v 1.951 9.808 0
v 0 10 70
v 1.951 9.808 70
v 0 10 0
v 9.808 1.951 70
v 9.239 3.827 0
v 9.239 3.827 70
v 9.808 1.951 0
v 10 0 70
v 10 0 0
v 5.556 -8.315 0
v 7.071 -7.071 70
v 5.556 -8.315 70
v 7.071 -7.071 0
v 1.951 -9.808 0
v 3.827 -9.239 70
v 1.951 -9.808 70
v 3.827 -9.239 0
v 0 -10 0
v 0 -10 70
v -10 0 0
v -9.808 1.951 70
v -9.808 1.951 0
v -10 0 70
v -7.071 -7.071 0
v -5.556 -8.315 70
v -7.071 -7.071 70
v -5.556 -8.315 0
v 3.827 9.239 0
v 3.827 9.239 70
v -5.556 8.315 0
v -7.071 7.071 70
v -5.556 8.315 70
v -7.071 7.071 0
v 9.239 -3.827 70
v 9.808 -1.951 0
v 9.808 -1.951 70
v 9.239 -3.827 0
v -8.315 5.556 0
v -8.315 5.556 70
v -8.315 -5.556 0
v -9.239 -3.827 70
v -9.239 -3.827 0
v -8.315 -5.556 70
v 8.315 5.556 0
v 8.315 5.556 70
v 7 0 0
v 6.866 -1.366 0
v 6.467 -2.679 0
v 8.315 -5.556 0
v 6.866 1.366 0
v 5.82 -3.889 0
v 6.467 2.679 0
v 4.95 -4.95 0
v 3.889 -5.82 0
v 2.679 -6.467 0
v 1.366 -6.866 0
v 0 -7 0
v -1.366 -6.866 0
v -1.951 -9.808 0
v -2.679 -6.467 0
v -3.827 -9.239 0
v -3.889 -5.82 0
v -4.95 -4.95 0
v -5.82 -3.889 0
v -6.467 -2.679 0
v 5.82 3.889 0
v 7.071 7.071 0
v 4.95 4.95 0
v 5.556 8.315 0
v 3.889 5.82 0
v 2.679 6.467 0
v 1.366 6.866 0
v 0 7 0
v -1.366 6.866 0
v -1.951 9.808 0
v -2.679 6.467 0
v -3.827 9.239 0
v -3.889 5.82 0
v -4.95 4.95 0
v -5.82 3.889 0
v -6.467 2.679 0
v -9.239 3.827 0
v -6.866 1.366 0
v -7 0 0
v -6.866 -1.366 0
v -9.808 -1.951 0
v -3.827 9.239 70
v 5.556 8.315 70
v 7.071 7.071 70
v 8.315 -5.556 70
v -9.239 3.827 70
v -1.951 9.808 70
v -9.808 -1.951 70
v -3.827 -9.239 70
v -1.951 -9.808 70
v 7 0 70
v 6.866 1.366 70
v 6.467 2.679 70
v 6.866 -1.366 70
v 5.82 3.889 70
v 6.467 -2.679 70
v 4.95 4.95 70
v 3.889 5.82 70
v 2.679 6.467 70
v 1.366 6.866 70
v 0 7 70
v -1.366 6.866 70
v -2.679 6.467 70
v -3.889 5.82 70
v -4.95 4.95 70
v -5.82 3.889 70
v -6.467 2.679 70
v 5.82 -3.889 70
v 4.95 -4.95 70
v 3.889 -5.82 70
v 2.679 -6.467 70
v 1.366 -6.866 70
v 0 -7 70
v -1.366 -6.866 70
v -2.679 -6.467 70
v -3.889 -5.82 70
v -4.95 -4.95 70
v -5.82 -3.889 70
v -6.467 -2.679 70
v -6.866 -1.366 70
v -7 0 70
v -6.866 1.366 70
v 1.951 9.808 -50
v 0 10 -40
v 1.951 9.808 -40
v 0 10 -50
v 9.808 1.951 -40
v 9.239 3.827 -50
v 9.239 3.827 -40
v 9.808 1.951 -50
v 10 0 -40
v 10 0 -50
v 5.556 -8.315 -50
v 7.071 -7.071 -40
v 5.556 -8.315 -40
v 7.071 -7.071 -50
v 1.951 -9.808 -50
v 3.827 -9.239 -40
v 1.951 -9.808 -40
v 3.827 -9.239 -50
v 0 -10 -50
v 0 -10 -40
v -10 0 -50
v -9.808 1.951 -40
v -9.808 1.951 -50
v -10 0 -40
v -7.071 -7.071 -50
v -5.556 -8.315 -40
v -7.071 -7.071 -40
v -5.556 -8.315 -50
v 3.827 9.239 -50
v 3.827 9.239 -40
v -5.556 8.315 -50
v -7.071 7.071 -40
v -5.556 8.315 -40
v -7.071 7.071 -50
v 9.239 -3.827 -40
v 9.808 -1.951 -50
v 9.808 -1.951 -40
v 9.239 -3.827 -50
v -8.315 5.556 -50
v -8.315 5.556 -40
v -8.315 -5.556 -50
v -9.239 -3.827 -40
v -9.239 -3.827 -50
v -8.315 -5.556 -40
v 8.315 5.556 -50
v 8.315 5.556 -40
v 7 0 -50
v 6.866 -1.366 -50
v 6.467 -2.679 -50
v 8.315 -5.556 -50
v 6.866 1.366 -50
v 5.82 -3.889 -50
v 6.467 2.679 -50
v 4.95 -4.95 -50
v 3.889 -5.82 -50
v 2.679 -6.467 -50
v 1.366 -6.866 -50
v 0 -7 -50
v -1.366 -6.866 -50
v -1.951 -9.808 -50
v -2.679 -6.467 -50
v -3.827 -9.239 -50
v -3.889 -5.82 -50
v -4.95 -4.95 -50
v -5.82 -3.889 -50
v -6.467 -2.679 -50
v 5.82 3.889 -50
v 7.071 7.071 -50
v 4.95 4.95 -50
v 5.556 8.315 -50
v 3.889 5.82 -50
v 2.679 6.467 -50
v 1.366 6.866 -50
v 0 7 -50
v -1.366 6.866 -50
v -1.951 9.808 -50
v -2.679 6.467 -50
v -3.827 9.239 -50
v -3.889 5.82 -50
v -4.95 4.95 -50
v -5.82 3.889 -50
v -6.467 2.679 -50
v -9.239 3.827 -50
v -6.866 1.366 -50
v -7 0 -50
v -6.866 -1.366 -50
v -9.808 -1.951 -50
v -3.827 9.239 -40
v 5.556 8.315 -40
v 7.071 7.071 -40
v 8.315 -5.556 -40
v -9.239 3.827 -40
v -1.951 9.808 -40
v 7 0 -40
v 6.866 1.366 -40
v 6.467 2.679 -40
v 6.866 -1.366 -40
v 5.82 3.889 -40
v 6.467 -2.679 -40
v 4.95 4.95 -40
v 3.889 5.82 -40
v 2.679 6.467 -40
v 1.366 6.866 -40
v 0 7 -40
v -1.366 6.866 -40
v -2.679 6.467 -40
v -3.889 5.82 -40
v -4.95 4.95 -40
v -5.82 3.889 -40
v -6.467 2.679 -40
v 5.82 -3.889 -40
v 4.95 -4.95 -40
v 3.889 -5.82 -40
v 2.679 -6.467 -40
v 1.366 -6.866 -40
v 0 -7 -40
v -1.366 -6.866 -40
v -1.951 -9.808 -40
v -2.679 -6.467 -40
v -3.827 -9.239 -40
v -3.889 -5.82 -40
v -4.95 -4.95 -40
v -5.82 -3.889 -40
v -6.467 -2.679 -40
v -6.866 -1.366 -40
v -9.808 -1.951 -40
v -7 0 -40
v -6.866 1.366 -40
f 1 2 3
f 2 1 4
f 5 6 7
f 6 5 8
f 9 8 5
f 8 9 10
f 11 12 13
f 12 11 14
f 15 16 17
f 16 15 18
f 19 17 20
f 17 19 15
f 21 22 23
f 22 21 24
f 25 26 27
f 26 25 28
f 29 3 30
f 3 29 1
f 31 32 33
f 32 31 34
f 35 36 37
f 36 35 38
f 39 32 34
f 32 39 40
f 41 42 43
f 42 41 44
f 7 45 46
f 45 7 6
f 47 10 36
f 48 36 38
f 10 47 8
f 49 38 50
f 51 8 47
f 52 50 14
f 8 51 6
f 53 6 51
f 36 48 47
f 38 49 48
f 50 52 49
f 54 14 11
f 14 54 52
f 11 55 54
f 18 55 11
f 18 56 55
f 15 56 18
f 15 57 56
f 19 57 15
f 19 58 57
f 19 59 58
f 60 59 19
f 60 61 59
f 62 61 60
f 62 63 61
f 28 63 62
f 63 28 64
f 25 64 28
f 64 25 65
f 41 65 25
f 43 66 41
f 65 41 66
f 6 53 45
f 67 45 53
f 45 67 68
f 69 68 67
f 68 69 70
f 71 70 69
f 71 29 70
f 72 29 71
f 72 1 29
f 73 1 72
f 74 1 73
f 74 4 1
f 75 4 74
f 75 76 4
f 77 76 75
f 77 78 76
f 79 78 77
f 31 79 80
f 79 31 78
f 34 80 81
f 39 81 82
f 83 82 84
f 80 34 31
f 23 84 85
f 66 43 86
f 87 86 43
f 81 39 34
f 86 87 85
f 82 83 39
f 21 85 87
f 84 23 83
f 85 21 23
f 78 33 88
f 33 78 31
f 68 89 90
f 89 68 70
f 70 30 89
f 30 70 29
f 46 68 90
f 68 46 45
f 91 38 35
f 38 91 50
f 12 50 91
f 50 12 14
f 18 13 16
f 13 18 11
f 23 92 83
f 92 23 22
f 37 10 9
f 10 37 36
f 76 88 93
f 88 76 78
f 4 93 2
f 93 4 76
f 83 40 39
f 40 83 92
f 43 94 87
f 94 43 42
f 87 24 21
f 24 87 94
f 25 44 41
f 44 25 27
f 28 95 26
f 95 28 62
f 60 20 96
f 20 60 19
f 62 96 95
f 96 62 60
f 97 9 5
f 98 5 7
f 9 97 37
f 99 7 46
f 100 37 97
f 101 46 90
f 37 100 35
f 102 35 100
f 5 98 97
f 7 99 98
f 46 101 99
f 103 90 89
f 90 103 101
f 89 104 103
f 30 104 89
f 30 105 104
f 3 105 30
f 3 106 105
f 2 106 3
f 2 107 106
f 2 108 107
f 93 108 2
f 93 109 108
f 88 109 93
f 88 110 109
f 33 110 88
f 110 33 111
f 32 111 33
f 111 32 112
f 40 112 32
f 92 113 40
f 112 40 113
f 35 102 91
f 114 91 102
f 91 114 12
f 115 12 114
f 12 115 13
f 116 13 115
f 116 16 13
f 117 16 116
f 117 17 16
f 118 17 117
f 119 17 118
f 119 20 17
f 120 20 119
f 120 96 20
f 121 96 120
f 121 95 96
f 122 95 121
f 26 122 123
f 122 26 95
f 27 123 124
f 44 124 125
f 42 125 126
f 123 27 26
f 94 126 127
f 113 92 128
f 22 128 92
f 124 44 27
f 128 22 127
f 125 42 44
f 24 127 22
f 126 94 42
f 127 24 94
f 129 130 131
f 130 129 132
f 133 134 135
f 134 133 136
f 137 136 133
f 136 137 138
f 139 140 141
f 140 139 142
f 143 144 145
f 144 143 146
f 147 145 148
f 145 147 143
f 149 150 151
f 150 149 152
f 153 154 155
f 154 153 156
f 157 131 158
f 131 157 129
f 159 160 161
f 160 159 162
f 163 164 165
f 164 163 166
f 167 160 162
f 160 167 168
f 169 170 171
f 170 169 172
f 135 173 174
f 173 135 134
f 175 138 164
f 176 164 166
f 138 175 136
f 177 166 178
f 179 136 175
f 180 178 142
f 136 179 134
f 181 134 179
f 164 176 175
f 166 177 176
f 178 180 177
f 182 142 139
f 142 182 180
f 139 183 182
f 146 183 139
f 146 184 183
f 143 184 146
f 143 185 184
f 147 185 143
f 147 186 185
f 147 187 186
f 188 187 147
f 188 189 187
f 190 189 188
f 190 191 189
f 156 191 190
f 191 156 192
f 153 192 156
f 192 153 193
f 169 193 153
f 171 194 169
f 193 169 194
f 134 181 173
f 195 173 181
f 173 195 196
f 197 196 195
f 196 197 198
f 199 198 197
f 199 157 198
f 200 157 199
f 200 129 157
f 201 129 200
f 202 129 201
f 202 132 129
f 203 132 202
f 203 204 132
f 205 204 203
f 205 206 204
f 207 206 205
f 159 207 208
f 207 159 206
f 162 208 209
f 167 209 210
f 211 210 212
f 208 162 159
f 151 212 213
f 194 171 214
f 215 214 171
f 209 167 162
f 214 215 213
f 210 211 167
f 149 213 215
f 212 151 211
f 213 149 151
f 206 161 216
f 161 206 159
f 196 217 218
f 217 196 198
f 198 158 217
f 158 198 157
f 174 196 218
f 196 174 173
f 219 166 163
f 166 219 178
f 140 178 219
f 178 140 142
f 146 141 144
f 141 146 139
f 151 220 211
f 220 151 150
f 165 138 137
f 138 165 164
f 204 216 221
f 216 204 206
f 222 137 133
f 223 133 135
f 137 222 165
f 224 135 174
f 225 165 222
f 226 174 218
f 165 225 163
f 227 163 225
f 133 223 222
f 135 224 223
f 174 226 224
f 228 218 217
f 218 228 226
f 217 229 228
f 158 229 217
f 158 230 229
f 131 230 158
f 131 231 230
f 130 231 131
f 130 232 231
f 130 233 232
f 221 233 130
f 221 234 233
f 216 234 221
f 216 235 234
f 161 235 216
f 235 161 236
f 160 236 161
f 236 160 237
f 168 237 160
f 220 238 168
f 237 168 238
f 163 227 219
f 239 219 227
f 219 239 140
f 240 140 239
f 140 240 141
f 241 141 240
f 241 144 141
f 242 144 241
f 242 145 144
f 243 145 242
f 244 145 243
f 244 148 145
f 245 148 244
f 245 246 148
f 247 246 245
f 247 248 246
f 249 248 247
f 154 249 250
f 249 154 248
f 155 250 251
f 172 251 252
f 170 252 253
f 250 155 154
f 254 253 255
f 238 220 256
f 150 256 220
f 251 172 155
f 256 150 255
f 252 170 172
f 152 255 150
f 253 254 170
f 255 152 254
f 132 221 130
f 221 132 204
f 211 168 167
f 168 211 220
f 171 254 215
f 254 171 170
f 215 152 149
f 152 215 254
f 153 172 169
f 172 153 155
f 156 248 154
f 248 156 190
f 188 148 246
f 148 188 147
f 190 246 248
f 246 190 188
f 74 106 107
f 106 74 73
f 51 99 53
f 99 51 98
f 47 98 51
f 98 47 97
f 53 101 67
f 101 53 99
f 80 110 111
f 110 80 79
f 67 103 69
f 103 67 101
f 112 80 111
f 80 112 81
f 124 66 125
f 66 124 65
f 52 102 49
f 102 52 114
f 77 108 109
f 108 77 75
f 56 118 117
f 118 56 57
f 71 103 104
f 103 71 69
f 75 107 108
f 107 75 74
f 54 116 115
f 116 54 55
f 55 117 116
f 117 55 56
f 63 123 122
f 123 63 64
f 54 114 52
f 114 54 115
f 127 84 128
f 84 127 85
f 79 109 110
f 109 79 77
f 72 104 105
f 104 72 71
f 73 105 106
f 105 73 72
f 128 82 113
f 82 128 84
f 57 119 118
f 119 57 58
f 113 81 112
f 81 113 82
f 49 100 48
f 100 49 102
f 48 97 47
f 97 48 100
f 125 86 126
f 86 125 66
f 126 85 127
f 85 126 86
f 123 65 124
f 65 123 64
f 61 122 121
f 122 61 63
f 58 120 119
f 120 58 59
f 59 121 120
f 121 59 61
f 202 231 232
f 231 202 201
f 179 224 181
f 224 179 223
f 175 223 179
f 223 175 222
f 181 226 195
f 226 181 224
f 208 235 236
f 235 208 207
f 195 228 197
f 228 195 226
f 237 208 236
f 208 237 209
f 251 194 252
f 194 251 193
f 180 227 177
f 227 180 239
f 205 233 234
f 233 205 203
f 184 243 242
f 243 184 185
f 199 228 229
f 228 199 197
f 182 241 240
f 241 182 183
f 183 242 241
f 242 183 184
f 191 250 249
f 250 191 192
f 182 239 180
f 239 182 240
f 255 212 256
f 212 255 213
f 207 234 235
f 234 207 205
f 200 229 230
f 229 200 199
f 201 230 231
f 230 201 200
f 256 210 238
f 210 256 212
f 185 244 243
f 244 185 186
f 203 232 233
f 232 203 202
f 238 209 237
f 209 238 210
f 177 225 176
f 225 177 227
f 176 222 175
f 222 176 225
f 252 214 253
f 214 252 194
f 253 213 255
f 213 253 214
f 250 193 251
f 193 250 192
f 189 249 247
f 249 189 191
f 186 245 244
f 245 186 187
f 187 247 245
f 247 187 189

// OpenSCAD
module pyramid_tower(height, width, depth, radius) {
  difference() {
    union() {
      translate([0, 0, 0]) {
        cylinder(h = height, r = radius, $fn = 32);
      }
      translate([0, 0, height]) {
        cylinder(h = width, r = radius, $fn = 32);
      }
      translate([0, 0, -height]) {
        cylinder(h = depth, r = radius, $fn = 32);
      }
    }
    translate([0, 0, 0]) {
      cylinder(h = height, r = radius * 0.7, $fn = 32);
    }
    translate([0, 0, height]) {
      cylinder(h = width, r = radius * 0.7, $fn = 32);
    }
    translate([0, 0, -height]) {
      cylinder(h = depth, r = radius * 0.7, $fn = 32);
    }
  }

  translate([0,0,0]) {
    rotate([90,0,0]) {
      translate([0,0,0]) {
        translate([0,0,0]) {
          difference() {
            cube([width, depth, height]);
            translate([0,0,0]) {
              cube([width, depth, height]);
            }
          }
        }
      }
    }
  }
}

pyramid_tower(height = 50, width = 20, depth = 10, radius = 10);
